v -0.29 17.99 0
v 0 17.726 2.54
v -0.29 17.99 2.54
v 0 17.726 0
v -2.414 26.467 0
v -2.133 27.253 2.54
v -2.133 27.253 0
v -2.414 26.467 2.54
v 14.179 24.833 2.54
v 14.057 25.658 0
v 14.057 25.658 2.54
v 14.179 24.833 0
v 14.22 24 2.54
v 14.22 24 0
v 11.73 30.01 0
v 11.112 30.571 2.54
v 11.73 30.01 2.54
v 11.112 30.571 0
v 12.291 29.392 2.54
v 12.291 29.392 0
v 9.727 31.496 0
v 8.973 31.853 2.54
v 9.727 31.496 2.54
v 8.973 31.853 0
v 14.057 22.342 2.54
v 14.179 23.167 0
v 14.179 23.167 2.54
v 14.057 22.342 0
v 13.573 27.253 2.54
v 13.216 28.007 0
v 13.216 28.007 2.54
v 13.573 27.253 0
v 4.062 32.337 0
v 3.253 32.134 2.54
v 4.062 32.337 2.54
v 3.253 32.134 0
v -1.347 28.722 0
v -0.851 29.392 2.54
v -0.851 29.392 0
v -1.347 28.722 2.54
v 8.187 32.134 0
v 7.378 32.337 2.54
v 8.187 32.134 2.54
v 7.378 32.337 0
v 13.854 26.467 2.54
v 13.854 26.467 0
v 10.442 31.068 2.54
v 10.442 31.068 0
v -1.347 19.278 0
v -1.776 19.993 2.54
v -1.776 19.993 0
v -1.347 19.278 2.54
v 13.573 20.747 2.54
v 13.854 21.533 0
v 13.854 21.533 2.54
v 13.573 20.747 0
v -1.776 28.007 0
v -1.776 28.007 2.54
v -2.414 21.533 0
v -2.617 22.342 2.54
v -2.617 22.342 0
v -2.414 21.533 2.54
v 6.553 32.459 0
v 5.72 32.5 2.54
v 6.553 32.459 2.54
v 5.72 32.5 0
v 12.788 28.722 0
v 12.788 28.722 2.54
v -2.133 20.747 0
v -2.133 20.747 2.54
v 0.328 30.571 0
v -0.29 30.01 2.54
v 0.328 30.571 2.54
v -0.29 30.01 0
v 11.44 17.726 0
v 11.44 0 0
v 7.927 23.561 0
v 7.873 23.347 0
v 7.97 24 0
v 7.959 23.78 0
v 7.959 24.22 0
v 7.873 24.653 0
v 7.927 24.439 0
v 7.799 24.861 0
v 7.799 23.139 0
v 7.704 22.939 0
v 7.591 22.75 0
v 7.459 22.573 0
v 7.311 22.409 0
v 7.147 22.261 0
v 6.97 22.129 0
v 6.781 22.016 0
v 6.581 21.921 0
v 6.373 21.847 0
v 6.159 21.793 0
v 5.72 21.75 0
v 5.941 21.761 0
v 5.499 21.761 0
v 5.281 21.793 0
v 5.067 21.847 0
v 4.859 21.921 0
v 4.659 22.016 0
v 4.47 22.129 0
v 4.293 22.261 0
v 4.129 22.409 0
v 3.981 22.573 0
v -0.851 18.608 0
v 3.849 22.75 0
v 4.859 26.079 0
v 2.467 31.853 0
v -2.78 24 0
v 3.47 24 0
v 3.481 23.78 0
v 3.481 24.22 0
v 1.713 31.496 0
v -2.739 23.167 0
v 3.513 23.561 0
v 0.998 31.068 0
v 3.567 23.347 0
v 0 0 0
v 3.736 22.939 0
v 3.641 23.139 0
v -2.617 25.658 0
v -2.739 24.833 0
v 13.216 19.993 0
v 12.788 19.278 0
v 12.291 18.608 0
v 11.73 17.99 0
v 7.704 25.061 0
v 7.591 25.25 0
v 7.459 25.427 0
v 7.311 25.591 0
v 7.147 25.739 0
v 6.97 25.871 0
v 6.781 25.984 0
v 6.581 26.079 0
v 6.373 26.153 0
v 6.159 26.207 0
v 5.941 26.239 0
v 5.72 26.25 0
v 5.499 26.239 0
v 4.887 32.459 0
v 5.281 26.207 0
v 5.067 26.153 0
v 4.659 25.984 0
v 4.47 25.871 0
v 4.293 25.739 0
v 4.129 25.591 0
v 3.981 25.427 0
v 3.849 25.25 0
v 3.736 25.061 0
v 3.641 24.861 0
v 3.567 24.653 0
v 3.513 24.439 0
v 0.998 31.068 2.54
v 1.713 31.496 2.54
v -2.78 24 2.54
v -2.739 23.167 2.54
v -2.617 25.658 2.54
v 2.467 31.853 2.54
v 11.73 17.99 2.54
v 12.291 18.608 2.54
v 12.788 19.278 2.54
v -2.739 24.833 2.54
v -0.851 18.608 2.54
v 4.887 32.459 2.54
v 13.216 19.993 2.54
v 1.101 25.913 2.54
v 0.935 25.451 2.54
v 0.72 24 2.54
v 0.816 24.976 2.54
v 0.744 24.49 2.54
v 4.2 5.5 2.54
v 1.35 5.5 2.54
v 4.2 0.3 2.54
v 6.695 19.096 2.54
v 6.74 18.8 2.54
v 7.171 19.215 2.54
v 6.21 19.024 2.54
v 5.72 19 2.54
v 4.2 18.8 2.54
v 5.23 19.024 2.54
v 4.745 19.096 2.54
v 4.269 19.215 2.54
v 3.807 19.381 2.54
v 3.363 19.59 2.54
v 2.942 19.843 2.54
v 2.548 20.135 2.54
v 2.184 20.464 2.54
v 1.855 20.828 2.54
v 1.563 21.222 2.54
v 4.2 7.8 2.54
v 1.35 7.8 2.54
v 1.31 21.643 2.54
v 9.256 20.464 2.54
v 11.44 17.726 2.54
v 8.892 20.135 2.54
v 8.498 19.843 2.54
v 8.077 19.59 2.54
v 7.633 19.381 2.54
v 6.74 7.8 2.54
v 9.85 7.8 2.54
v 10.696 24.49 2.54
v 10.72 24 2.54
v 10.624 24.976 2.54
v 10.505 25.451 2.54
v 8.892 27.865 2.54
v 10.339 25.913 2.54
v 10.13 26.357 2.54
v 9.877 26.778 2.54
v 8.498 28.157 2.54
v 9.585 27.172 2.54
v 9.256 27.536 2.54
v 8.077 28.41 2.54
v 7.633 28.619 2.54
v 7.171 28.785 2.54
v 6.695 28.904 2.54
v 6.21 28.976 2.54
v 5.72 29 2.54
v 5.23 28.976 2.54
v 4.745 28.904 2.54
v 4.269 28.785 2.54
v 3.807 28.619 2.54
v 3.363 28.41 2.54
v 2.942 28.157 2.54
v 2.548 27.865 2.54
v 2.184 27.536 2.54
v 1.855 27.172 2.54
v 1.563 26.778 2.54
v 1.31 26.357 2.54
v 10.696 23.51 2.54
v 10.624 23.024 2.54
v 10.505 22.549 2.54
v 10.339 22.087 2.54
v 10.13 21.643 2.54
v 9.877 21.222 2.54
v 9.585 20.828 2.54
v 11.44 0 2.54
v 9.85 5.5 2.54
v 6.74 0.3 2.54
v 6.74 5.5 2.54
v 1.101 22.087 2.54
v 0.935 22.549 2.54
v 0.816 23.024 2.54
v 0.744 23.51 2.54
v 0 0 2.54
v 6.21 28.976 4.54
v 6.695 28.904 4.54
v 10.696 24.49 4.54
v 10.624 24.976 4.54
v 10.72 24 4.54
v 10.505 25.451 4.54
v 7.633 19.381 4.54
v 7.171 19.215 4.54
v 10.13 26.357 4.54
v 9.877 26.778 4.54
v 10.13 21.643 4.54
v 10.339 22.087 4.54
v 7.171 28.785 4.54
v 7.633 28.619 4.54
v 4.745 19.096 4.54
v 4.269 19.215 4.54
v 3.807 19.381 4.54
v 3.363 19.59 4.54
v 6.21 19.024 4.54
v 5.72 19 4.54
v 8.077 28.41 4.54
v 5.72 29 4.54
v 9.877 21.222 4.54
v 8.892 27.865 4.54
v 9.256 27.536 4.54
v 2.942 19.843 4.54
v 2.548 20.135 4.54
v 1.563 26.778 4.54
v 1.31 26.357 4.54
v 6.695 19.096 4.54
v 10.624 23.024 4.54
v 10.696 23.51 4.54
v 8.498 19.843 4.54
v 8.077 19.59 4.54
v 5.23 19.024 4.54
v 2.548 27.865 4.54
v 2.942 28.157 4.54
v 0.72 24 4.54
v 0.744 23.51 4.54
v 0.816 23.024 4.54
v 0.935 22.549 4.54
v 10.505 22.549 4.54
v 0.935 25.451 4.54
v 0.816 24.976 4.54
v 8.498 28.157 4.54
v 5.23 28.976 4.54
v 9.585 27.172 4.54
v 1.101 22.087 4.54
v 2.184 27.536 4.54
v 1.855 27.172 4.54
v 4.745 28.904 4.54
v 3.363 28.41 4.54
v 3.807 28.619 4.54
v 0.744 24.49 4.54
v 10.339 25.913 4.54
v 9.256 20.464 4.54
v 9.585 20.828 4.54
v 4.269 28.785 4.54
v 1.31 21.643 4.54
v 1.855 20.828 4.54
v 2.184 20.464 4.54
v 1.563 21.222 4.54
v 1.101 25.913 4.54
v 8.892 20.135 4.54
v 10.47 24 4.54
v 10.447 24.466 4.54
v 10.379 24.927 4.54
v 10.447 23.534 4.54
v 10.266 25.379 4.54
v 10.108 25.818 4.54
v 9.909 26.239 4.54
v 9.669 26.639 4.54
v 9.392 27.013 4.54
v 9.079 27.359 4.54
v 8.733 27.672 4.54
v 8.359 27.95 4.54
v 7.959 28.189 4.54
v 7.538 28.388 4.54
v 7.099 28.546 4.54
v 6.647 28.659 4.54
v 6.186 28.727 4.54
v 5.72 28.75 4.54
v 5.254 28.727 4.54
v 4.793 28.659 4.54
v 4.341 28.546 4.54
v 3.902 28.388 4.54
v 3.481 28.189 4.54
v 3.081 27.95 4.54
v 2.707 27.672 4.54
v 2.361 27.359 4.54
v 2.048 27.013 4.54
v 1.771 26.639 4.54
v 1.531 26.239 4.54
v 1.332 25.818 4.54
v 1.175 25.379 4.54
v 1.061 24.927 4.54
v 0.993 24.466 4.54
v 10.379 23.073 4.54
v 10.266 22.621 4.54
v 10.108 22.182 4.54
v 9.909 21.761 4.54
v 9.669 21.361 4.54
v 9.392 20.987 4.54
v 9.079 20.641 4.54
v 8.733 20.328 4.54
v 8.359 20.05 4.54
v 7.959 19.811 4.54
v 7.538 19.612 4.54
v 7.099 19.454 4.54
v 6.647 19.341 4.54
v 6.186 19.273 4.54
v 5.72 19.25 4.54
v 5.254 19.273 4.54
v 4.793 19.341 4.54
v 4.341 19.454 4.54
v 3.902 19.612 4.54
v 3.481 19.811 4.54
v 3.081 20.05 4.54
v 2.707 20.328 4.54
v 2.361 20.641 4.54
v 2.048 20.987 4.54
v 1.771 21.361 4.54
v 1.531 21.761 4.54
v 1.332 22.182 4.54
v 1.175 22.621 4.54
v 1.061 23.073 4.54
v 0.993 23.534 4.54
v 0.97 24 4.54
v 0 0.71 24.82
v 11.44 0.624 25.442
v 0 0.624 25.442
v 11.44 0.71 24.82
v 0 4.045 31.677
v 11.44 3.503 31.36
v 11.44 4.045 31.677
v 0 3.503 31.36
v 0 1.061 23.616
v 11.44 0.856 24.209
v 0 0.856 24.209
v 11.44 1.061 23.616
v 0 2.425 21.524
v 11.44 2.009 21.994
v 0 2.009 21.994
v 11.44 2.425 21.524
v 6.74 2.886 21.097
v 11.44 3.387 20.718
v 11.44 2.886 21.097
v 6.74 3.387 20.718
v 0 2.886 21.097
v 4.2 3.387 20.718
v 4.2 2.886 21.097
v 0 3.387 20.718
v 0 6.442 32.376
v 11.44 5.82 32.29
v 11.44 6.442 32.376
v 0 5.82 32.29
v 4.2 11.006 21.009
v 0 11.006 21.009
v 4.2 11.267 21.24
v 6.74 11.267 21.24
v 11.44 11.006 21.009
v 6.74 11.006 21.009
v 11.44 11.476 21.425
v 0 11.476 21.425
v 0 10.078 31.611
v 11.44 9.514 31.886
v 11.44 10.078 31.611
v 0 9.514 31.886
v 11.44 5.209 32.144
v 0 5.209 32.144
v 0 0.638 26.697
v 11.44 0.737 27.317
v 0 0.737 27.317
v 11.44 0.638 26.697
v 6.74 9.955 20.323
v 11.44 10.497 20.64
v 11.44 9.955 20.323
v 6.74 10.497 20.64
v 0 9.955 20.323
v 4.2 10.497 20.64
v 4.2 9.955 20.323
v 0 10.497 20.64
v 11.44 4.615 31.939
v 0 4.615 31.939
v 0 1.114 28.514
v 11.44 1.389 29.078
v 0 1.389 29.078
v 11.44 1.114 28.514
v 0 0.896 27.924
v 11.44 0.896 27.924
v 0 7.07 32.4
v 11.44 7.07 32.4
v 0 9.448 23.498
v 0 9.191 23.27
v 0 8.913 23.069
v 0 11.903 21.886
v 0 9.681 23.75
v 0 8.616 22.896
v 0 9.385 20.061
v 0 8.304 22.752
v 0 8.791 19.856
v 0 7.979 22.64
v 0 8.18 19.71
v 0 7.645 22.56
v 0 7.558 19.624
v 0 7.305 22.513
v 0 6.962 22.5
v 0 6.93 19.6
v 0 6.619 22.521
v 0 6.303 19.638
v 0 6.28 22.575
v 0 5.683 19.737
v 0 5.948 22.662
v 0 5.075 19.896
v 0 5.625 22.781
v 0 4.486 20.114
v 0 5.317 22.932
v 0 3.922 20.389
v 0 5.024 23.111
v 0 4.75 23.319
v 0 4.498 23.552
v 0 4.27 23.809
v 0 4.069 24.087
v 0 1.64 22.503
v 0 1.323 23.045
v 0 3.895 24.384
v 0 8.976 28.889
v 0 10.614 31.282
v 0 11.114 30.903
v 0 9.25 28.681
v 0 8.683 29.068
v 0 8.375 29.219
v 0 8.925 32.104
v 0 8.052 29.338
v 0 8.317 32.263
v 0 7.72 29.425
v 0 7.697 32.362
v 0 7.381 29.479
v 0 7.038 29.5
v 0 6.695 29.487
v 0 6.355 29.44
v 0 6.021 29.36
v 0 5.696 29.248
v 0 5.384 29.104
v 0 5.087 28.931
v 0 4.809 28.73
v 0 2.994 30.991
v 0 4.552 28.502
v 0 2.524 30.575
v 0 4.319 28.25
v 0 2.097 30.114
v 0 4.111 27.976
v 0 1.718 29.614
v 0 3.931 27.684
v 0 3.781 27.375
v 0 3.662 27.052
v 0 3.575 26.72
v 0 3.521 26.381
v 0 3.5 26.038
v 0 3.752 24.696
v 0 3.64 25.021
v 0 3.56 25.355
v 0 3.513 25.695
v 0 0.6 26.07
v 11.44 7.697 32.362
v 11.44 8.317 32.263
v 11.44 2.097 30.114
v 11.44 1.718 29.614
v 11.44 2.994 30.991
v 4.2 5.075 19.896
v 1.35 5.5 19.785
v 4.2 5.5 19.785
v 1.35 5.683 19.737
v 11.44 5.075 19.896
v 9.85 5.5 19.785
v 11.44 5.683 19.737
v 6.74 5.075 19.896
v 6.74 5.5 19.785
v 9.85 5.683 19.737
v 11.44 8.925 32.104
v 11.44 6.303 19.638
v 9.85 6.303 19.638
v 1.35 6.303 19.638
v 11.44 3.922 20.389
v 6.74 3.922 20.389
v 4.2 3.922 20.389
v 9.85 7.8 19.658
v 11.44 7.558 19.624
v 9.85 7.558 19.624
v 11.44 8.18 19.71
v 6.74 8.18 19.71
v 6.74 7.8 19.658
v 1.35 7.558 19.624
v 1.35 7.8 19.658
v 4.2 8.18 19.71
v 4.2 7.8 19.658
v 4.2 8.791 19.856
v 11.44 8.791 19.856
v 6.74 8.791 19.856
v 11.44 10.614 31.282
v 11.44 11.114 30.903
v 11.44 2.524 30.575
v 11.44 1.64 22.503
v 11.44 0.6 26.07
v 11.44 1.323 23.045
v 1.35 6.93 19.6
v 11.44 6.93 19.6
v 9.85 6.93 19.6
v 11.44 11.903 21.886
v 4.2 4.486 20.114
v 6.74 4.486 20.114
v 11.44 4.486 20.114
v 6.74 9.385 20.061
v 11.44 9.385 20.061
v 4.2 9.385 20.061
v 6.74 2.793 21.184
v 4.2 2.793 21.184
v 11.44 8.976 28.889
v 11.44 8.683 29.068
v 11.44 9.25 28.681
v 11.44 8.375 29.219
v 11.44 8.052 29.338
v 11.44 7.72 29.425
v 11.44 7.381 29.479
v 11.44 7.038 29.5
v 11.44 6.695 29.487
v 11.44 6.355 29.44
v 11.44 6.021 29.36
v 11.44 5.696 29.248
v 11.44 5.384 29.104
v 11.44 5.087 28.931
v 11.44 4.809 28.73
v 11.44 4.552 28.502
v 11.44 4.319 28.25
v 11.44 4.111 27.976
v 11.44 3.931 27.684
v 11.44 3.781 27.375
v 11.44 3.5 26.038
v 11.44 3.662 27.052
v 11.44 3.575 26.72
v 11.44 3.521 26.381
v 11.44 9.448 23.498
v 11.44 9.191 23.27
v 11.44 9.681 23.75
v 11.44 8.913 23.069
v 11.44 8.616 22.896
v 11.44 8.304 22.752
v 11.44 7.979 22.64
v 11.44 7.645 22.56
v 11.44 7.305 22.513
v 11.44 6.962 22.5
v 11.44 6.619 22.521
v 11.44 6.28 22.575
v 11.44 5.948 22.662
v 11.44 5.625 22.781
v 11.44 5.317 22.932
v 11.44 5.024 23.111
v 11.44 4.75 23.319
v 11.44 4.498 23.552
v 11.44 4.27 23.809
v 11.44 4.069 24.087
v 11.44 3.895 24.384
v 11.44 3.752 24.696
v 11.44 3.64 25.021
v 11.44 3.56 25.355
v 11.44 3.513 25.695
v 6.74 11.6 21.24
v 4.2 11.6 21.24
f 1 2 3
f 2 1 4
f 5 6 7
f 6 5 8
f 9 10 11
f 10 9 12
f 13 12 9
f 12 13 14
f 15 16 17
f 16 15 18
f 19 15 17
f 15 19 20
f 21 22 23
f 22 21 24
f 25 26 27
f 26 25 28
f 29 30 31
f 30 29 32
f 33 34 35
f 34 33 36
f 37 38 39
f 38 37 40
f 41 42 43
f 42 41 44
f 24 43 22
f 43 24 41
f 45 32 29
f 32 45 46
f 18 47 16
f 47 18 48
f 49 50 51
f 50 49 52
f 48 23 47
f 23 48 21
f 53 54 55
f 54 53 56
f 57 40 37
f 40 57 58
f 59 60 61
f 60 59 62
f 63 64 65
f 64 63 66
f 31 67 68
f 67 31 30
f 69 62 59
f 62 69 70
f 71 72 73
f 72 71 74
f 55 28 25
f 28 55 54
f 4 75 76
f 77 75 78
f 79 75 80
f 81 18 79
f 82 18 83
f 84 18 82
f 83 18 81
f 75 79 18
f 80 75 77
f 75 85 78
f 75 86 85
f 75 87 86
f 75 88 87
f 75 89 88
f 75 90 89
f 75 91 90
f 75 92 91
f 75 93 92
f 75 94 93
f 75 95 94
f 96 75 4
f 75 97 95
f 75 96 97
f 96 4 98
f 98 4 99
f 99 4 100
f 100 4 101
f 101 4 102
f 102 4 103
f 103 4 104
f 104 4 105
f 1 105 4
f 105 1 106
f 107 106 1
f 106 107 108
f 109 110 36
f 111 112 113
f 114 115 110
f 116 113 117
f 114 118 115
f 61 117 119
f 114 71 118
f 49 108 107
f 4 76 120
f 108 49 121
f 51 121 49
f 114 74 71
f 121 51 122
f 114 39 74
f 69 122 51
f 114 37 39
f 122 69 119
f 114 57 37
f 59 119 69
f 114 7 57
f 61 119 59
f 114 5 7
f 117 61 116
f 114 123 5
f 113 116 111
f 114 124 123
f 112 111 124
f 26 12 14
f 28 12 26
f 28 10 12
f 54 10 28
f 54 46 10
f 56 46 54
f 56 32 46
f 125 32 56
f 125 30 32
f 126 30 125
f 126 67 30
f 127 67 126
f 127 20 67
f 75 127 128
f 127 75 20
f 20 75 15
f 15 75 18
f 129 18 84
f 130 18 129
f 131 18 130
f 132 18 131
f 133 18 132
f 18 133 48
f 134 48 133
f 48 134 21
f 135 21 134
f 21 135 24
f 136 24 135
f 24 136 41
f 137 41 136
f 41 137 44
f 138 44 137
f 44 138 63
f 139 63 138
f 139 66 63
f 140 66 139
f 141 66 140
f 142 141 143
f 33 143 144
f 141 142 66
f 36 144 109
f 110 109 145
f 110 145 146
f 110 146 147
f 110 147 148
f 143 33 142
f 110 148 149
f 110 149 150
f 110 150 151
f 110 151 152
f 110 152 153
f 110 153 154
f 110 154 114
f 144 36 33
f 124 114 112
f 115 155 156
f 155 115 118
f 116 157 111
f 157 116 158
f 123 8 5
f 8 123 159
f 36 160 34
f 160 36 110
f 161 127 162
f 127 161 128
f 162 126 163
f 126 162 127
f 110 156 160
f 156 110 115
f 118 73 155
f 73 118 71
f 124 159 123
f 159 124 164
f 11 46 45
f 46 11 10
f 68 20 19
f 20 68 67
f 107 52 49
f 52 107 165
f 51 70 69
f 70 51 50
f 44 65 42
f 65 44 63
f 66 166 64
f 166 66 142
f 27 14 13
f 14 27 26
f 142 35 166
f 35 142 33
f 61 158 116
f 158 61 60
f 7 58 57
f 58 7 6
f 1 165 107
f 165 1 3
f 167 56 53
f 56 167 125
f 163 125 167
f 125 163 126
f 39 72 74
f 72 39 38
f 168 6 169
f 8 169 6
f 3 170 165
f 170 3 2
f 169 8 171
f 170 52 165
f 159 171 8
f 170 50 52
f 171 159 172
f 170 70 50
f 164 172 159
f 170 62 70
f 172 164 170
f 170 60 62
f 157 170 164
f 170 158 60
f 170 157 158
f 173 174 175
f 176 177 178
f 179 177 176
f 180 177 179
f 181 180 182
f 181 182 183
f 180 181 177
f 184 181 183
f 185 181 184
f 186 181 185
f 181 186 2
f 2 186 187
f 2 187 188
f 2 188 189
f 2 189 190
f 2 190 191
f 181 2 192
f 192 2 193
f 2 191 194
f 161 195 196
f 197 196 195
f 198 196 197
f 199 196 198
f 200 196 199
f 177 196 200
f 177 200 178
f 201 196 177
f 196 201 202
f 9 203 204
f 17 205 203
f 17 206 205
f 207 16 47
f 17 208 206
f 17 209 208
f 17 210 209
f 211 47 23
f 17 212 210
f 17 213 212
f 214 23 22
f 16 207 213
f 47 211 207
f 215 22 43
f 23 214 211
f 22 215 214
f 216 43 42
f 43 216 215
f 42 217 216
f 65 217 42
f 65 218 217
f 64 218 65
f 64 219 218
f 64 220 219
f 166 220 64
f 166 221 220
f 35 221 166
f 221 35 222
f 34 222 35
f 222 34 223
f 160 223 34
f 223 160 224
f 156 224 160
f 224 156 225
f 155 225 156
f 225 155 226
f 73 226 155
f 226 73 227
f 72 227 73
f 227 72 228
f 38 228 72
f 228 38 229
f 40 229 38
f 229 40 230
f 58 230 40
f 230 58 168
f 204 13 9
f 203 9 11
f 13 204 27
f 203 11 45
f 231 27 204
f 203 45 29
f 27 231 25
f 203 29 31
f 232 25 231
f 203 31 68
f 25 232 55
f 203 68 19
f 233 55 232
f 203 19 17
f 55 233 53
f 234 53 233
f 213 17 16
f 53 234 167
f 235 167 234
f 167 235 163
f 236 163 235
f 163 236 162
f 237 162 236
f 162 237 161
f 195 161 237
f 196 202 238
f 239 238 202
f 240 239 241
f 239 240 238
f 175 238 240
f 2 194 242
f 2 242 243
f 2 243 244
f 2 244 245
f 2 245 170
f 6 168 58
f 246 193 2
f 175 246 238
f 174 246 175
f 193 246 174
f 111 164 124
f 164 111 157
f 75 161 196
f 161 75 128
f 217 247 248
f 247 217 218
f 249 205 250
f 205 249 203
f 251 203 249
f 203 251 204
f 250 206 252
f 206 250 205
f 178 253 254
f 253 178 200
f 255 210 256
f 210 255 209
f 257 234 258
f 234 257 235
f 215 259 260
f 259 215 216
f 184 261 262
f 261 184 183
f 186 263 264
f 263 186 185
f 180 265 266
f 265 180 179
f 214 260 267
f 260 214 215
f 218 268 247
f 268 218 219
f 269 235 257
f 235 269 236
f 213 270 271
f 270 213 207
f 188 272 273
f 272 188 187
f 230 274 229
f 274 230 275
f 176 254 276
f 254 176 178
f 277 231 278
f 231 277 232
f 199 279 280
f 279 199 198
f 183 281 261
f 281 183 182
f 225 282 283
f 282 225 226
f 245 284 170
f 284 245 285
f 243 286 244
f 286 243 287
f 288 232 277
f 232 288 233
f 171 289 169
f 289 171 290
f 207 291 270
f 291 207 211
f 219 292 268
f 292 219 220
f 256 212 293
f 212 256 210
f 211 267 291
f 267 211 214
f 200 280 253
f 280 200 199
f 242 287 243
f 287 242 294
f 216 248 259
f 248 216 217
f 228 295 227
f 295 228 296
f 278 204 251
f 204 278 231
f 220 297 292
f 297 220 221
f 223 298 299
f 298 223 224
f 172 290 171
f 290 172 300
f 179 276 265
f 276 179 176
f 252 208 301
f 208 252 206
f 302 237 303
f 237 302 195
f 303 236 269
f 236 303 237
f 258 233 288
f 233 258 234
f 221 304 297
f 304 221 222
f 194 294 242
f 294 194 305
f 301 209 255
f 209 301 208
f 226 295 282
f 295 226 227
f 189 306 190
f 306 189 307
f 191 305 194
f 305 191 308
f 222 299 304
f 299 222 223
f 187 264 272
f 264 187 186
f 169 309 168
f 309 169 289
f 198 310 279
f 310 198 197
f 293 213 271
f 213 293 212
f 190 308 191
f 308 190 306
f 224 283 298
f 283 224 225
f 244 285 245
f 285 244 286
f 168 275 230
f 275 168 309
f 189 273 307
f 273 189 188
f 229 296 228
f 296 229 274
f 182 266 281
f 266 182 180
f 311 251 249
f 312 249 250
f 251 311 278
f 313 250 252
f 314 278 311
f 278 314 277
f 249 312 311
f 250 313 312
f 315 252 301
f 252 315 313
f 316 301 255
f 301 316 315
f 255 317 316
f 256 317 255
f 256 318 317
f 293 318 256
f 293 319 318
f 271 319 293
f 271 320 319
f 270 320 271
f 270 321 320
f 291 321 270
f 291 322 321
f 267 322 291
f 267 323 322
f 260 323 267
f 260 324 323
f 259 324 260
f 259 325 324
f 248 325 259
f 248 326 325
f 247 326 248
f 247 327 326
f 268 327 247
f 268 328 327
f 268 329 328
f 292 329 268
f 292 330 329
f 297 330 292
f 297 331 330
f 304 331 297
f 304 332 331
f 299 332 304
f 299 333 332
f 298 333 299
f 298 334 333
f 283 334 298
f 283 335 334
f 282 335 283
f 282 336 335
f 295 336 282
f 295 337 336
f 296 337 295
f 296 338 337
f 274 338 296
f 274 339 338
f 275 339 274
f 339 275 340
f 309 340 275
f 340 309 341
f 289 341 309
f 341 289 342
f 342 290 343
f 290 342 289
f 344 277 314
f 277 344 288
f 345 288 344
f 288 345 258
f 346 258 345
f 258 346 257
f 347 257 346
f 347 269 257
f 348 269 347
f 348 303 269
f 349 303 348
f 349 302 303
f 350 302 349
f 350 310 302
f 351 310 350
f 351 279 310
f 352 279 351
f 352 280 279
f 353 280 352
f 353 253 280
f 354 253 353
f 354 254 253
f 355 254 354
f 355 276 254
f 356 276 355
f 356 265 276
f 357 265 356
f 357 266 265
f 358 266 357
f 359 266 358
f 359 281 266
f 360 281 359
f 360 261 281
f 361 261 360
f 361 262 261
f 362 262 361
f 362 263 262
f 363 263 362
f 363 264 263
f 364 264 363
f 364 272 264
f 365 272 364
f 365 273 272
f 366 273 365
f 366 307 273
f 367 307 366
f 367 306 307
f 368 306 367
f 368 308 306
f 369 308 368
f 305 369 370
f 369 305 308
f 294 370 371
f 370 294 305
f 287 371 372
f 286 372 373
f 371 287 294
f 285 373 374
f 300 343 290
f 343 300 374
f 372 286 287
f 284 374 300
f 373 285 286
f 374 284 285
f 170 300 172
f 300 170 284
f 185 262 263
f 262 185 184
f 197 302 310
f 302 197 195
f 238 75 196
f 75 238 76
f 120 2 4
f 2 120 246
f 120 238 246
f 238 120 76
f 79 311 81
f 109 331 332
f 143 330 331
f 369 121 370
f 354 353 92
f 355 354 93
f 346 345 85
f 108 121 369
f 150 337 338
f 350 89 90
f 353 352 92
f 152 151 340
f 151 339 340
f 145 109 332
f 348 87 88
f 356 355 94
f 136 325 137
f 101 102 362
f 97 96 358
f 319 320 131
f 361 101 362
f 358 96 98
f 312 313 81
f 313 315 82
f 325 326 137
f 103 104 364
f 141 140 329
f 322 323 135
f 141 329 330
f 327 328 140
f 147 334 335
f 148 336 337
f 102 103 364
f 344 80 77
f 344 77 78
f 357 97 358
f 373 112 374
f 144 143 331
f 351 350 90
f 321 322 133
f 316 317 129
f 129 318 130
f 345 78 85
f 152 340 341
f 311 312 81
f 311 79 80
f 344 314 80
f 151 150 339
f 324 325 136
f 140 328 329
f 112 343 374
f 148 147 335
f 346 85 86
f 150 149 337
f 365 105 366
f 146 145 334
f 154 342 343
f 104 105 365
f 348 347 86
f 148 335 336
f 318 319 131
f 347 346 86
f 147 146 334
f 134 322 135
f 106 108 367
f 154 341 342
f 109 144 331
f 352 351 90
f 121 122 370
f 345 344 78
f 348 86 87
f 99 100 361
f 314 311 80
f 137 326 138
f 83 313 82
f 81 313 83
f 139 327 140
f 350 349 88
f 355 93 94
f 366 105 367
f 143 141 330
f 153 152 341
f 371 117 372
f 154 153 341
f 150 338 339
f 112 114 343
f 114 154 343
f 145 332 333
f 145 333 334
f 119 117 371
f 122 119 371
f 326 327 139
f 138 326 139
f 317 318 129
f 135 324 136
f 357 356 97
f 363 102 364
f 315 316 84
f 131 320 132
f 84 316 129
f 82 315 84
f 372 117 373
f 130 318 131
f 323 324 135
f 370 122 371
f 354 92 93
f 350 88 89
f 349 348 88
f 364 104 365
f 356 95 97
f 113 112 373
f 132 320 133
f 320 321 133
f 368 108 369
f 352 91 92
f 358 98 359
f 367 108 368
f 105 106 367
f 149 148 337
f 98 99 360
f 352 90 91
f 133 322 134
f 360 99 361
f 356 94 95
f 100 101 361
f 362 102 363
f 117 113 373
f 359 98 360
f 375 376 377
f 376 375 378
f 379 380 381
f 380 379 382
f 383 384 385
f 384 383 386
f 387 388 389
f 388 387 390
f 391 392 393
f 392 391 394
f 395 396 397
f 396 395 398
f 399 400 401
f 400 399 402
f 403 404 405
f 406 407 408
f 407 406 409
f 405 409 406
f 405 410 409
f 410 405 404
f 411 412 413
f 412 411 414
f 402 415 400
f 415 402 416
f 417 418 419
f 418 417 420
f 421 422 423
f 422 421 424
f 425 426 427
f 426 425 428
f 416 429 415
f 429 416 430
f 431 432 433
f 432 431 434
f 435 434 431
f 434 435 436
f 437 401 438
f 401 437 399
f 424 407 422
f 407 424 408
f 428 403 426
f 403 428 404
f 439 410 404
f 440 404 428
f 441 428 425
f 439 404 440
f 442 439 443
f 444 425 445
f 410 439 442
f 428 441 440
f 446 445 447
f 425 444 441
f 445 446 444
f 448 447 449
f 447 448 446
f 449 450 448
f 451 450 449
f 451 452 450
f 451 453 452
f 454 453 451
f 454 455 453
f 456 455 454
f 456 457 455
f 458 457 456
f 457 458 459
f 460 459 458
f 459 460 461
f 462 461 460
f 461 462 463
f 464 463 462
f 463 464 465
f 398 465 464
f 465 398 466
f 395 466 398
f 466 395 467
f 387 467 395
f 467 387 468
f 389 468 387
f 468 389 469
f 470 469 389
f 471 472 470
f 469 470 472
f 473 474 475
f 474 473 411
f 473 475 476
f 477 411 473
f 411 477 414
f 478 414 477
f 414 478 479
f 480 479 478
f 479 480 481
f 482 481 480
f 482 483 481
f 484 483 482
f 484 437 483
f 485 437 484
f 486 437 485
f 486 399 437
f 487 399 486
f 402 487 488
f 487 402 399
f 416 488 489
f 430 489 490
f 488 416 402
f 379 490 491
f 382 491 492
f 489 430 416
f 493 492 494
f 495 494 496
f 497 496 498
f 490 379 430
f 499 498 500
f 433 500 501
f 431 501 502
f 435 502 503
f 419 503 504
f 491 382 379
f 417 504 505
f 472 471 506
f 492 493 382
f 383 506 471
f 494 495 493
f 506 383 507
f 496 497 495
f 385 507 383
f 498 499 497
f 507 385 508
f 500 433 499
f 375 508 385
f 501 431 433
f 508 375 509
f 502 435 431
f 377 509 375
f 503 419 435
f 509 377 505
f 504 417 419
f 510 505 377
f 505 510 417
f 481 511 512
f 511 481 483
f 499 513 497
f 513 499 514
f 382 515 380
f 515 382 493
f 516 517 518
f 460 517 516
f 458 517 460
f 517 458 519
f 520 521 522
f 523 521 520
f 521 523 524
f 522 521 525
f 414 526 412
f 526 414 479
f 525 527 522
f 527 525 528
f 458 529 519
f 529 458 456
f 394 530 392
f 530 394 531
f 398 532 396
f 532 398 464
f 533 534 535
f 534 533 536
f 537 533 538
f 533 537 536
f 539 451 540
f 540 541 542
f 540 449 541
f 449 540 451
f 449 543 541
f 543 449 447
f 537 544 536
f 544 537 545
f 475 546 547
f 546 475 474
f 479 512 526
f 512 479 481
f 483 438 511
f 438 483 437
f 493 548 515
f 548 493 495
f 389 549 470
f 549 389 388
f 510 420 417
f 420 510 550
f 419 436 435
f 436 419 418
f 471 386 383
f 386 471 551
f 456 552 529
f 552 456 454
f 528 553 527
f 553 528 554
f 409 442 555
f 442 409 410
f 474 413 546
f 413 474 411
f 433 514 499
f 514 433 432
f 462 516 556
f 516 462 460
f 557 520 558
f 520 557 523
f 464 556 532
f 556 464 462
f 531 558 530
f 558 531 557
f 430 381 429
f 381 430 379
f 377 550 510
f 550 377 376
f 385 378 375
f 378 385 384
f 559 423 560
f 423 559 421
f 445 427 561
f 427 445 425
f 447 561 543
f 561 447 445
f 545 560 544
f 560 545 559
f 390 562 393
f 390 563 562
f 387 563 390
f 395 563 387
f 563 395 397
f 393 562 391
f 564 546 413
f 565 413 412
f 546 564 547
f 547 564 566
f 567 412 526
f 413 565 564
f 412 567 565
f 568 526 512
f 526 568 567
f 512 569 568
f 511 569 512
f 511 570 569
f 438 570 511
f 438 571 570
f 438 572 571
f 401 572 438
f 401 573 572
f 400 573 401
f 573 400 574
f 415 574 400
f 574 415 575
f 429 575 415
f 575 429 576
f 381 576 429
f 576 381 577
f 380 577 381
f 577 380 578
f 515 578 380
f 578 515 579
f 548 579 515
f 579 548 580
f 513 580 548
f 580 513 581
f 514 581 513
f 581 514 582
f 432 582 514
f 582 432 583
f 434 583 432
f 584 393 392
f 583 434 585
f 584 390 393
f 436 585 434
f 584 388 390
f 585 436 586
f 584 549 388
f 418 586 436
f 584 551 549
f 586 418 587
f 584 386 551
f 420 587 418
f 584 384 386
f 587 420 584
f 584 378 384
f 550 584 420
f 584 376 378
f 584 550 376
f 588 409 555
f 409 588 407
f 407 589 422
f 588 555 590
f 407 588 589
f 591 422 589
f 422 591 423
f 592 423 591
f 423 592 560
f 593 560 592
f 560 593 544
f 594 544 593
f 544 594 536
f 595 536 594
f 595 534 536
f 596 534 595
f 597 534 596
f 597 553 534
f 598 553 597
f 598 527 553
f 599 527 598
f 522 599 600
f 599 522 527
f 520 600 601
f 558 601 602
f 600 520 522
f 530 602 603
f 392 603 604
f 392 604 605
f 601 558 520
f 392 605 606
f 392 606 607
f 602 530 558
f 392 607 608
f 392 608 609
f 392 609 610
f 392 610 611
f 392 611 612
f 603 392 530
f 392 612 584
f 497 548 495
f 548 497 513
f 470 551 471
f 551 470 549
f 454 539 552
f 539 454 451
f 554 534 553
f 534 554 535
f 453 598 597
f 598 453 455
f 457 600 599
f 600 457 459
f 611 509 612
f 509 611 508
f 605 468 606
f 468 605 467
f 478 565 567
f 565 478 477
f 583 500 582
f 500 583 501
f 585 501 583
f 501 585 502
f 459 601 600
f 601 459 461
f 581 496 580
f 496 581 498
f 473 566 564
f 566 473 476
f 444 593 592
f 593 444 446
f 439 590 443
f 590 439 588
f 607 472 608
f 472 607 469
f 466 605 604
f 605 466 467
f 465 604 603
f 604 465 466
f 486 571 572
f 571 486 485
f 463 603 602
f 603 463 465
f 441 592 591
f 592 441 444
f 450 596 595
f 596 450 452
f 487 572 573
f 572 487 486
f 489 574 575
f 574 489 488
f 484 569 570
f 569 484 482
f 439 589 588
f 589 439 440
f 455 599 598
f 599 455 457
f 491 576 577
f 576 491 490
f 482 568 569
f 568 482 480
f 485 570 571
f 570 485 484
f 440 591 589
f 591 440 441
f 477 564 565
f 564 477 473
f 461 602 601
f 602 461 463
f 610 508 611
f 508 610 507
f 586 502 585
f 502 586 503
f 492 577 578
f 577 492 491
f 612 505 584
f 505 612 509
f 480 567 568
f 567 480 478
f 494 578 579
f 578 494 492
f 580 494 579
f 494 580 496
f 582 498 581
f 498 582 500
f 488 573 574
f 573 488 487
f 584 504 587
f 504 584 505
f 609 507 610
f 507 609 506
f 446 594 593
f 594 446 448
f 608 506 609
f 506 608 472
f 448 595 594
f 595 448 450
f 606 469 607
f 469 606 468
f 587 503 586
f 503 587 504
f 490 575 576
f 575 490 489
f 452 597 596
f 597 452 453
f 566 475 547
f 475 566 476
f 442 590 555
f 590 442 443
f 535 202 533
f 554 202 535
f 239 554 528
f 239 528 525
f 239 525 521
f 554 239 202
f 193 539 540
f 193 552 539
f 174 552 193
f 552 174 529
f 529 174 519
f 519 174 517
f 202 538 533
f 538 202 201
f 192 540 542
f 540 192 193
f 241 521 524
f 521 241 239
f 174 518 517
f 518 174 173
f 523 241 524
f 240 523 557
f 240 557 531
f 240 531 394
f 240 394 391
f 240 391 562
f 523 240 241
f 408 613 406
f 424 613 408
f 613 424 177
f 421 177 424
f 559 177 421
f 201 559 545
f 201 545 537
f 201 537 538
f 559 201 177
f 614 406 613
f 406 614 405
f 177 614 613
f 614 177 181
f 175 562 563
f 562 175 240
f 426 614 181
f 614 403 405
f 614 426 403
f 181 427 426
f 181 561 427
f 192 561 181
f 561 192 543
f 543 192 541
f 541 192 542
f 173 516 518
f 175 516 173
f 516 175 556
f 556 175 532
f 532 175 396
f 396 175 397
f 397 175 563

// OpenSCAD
/* Copyleft Roy Sigurd Karlsbakk <roy@karlsbakk.net> 2019
 * Dings for å ersatatte drit fra Plantasjen
 *
 * Lisens  CC BY-NC https://creativecommons.org/licenses/by-nc/4.0/legalcode.no
 * License CC BY-NC https://creativecommons.org/licenses/by-nc/4.0/legalcode
 */

$fn=64;

cube_x=11.44;
cube_y=19.25;
cube_z=2.54;

wall_width=cube_z;

bottom_cube=[cube_x,cube_y,cube_z];
circle_center=[cube_x/2,24];
outer_circle_d=17;
cone_outer_d=10;
cone_inner_d=4.5;
cone_edge=0.5;
screw_cyl_height=2;
cone_height=screw_cyl_height+cube_z;
out_pin_thickness=2.54;
out_pin_x=8.5;
out_pin_y=2.3;
out_pin_z=18;
out_pin_origo=[1.35,5.5,cube_z];
back_out_y_bottom=0.5;
back_out_y_top=3.2;
front_out_y_bottom=back_out_y_bottom+19;
front_out_y_top=back_out_y_top+9;

/* If easyprint=1, flatten out the "backside" of the hook, leaving it easier
 * to print without supports */
easyprint=0;

module strikkepinnering(width, ring_radius, height=1, rotational_angle=360) {
    scale([1,1,height]) {
        rotate_extrude(angle=rotational_angle, convexity = 10)
            translate([ring_radius, 0, 0])
                circle(d = width);

        if (rotational_angle < 360) {
            translate([ring_radius, 0, 0])
                sphere(d = width);

            rotate(a=[0,0,rotational_angle])
                translate([ring_radius, 0, 0])
                    sphere(d = width);
        }
    }
}

module festering(width, outer_d, inner_d, rotational_angle=360) {
    difference() {
        cylinder(d=outer_d, h=width);
        cylinder(d=inner_d, h=width);
        translate([0,0,0]) {
            rotate([0,0,0]) {
                cube([6.5,6.5,cube_x]);
            }
        }
    }
}

module base() {
    cube(bottom_cube);
    translate(circle_center)  {
        cylinder(d=outer_circle_d,h=cube_z);
        cylinder(h=cone_height,d=cone_outer_d);
    }
}

module trekantdings() {
    fra_x=4.2;
    fra_y=0.3;
    trekanthoyde=18.7;
    trekantfram_topp=8.2;
    trekantfram_bunn=18.5;
    helling_y=2.5;
    trekantdybde_y=8.8;

    polypoints=[
        [fra_x,fra_y,cube_z],                                                   // 0
        [fra_x,fra_y+trekantfram_bunn,cube_z],                                  // 1
        [fra_x+wall_width,fra_y+trekantfram_bunn,cube_z],                       // 2
        [fra_x+wall_width,fra_y,cube_z],                                        // 3
        [fra_x,fra_y+helling_y,cube_z+trekanthoyde],                            // 4
        [fra_x,fra_y+helling_y+trekantdybde_y,cube_z+trekanthoyde],             // 5
        [fra_x+wall_width,fra_y+helling_y+trekantdybde_y,cube_z+trekanthoyde],  // 6
        [fra_x+wall_width,fra_y+helling_y,cube_z+trekanthoyde]                  // 7
    ];
    polyfaces=[
        [0,3,2,1],
        [1,2,6,5],
        [4,5,6,7],
        [0,4,7,3],
        [0,1,5,4],
        [2,3,7,6],
    ];
    polyhedron(polypoints, polyfaces);
    
}
difference() {
    base();
    translate(circle_center)  {
        cylinder(d1=cone_inner_d,d2=cone_outer_d-cone_edge,h=cone_height);
    }
}
translate(out_pin_origo) {
    cube([out_pin_x,out_pin_y,out_pin_z]);
}
trekantdings();

translate([0,7,26]) {
    rotate([90,40,90]) {
        festering(width=cube_x, outer_d=12.8, inner_d=7);
    }
}
